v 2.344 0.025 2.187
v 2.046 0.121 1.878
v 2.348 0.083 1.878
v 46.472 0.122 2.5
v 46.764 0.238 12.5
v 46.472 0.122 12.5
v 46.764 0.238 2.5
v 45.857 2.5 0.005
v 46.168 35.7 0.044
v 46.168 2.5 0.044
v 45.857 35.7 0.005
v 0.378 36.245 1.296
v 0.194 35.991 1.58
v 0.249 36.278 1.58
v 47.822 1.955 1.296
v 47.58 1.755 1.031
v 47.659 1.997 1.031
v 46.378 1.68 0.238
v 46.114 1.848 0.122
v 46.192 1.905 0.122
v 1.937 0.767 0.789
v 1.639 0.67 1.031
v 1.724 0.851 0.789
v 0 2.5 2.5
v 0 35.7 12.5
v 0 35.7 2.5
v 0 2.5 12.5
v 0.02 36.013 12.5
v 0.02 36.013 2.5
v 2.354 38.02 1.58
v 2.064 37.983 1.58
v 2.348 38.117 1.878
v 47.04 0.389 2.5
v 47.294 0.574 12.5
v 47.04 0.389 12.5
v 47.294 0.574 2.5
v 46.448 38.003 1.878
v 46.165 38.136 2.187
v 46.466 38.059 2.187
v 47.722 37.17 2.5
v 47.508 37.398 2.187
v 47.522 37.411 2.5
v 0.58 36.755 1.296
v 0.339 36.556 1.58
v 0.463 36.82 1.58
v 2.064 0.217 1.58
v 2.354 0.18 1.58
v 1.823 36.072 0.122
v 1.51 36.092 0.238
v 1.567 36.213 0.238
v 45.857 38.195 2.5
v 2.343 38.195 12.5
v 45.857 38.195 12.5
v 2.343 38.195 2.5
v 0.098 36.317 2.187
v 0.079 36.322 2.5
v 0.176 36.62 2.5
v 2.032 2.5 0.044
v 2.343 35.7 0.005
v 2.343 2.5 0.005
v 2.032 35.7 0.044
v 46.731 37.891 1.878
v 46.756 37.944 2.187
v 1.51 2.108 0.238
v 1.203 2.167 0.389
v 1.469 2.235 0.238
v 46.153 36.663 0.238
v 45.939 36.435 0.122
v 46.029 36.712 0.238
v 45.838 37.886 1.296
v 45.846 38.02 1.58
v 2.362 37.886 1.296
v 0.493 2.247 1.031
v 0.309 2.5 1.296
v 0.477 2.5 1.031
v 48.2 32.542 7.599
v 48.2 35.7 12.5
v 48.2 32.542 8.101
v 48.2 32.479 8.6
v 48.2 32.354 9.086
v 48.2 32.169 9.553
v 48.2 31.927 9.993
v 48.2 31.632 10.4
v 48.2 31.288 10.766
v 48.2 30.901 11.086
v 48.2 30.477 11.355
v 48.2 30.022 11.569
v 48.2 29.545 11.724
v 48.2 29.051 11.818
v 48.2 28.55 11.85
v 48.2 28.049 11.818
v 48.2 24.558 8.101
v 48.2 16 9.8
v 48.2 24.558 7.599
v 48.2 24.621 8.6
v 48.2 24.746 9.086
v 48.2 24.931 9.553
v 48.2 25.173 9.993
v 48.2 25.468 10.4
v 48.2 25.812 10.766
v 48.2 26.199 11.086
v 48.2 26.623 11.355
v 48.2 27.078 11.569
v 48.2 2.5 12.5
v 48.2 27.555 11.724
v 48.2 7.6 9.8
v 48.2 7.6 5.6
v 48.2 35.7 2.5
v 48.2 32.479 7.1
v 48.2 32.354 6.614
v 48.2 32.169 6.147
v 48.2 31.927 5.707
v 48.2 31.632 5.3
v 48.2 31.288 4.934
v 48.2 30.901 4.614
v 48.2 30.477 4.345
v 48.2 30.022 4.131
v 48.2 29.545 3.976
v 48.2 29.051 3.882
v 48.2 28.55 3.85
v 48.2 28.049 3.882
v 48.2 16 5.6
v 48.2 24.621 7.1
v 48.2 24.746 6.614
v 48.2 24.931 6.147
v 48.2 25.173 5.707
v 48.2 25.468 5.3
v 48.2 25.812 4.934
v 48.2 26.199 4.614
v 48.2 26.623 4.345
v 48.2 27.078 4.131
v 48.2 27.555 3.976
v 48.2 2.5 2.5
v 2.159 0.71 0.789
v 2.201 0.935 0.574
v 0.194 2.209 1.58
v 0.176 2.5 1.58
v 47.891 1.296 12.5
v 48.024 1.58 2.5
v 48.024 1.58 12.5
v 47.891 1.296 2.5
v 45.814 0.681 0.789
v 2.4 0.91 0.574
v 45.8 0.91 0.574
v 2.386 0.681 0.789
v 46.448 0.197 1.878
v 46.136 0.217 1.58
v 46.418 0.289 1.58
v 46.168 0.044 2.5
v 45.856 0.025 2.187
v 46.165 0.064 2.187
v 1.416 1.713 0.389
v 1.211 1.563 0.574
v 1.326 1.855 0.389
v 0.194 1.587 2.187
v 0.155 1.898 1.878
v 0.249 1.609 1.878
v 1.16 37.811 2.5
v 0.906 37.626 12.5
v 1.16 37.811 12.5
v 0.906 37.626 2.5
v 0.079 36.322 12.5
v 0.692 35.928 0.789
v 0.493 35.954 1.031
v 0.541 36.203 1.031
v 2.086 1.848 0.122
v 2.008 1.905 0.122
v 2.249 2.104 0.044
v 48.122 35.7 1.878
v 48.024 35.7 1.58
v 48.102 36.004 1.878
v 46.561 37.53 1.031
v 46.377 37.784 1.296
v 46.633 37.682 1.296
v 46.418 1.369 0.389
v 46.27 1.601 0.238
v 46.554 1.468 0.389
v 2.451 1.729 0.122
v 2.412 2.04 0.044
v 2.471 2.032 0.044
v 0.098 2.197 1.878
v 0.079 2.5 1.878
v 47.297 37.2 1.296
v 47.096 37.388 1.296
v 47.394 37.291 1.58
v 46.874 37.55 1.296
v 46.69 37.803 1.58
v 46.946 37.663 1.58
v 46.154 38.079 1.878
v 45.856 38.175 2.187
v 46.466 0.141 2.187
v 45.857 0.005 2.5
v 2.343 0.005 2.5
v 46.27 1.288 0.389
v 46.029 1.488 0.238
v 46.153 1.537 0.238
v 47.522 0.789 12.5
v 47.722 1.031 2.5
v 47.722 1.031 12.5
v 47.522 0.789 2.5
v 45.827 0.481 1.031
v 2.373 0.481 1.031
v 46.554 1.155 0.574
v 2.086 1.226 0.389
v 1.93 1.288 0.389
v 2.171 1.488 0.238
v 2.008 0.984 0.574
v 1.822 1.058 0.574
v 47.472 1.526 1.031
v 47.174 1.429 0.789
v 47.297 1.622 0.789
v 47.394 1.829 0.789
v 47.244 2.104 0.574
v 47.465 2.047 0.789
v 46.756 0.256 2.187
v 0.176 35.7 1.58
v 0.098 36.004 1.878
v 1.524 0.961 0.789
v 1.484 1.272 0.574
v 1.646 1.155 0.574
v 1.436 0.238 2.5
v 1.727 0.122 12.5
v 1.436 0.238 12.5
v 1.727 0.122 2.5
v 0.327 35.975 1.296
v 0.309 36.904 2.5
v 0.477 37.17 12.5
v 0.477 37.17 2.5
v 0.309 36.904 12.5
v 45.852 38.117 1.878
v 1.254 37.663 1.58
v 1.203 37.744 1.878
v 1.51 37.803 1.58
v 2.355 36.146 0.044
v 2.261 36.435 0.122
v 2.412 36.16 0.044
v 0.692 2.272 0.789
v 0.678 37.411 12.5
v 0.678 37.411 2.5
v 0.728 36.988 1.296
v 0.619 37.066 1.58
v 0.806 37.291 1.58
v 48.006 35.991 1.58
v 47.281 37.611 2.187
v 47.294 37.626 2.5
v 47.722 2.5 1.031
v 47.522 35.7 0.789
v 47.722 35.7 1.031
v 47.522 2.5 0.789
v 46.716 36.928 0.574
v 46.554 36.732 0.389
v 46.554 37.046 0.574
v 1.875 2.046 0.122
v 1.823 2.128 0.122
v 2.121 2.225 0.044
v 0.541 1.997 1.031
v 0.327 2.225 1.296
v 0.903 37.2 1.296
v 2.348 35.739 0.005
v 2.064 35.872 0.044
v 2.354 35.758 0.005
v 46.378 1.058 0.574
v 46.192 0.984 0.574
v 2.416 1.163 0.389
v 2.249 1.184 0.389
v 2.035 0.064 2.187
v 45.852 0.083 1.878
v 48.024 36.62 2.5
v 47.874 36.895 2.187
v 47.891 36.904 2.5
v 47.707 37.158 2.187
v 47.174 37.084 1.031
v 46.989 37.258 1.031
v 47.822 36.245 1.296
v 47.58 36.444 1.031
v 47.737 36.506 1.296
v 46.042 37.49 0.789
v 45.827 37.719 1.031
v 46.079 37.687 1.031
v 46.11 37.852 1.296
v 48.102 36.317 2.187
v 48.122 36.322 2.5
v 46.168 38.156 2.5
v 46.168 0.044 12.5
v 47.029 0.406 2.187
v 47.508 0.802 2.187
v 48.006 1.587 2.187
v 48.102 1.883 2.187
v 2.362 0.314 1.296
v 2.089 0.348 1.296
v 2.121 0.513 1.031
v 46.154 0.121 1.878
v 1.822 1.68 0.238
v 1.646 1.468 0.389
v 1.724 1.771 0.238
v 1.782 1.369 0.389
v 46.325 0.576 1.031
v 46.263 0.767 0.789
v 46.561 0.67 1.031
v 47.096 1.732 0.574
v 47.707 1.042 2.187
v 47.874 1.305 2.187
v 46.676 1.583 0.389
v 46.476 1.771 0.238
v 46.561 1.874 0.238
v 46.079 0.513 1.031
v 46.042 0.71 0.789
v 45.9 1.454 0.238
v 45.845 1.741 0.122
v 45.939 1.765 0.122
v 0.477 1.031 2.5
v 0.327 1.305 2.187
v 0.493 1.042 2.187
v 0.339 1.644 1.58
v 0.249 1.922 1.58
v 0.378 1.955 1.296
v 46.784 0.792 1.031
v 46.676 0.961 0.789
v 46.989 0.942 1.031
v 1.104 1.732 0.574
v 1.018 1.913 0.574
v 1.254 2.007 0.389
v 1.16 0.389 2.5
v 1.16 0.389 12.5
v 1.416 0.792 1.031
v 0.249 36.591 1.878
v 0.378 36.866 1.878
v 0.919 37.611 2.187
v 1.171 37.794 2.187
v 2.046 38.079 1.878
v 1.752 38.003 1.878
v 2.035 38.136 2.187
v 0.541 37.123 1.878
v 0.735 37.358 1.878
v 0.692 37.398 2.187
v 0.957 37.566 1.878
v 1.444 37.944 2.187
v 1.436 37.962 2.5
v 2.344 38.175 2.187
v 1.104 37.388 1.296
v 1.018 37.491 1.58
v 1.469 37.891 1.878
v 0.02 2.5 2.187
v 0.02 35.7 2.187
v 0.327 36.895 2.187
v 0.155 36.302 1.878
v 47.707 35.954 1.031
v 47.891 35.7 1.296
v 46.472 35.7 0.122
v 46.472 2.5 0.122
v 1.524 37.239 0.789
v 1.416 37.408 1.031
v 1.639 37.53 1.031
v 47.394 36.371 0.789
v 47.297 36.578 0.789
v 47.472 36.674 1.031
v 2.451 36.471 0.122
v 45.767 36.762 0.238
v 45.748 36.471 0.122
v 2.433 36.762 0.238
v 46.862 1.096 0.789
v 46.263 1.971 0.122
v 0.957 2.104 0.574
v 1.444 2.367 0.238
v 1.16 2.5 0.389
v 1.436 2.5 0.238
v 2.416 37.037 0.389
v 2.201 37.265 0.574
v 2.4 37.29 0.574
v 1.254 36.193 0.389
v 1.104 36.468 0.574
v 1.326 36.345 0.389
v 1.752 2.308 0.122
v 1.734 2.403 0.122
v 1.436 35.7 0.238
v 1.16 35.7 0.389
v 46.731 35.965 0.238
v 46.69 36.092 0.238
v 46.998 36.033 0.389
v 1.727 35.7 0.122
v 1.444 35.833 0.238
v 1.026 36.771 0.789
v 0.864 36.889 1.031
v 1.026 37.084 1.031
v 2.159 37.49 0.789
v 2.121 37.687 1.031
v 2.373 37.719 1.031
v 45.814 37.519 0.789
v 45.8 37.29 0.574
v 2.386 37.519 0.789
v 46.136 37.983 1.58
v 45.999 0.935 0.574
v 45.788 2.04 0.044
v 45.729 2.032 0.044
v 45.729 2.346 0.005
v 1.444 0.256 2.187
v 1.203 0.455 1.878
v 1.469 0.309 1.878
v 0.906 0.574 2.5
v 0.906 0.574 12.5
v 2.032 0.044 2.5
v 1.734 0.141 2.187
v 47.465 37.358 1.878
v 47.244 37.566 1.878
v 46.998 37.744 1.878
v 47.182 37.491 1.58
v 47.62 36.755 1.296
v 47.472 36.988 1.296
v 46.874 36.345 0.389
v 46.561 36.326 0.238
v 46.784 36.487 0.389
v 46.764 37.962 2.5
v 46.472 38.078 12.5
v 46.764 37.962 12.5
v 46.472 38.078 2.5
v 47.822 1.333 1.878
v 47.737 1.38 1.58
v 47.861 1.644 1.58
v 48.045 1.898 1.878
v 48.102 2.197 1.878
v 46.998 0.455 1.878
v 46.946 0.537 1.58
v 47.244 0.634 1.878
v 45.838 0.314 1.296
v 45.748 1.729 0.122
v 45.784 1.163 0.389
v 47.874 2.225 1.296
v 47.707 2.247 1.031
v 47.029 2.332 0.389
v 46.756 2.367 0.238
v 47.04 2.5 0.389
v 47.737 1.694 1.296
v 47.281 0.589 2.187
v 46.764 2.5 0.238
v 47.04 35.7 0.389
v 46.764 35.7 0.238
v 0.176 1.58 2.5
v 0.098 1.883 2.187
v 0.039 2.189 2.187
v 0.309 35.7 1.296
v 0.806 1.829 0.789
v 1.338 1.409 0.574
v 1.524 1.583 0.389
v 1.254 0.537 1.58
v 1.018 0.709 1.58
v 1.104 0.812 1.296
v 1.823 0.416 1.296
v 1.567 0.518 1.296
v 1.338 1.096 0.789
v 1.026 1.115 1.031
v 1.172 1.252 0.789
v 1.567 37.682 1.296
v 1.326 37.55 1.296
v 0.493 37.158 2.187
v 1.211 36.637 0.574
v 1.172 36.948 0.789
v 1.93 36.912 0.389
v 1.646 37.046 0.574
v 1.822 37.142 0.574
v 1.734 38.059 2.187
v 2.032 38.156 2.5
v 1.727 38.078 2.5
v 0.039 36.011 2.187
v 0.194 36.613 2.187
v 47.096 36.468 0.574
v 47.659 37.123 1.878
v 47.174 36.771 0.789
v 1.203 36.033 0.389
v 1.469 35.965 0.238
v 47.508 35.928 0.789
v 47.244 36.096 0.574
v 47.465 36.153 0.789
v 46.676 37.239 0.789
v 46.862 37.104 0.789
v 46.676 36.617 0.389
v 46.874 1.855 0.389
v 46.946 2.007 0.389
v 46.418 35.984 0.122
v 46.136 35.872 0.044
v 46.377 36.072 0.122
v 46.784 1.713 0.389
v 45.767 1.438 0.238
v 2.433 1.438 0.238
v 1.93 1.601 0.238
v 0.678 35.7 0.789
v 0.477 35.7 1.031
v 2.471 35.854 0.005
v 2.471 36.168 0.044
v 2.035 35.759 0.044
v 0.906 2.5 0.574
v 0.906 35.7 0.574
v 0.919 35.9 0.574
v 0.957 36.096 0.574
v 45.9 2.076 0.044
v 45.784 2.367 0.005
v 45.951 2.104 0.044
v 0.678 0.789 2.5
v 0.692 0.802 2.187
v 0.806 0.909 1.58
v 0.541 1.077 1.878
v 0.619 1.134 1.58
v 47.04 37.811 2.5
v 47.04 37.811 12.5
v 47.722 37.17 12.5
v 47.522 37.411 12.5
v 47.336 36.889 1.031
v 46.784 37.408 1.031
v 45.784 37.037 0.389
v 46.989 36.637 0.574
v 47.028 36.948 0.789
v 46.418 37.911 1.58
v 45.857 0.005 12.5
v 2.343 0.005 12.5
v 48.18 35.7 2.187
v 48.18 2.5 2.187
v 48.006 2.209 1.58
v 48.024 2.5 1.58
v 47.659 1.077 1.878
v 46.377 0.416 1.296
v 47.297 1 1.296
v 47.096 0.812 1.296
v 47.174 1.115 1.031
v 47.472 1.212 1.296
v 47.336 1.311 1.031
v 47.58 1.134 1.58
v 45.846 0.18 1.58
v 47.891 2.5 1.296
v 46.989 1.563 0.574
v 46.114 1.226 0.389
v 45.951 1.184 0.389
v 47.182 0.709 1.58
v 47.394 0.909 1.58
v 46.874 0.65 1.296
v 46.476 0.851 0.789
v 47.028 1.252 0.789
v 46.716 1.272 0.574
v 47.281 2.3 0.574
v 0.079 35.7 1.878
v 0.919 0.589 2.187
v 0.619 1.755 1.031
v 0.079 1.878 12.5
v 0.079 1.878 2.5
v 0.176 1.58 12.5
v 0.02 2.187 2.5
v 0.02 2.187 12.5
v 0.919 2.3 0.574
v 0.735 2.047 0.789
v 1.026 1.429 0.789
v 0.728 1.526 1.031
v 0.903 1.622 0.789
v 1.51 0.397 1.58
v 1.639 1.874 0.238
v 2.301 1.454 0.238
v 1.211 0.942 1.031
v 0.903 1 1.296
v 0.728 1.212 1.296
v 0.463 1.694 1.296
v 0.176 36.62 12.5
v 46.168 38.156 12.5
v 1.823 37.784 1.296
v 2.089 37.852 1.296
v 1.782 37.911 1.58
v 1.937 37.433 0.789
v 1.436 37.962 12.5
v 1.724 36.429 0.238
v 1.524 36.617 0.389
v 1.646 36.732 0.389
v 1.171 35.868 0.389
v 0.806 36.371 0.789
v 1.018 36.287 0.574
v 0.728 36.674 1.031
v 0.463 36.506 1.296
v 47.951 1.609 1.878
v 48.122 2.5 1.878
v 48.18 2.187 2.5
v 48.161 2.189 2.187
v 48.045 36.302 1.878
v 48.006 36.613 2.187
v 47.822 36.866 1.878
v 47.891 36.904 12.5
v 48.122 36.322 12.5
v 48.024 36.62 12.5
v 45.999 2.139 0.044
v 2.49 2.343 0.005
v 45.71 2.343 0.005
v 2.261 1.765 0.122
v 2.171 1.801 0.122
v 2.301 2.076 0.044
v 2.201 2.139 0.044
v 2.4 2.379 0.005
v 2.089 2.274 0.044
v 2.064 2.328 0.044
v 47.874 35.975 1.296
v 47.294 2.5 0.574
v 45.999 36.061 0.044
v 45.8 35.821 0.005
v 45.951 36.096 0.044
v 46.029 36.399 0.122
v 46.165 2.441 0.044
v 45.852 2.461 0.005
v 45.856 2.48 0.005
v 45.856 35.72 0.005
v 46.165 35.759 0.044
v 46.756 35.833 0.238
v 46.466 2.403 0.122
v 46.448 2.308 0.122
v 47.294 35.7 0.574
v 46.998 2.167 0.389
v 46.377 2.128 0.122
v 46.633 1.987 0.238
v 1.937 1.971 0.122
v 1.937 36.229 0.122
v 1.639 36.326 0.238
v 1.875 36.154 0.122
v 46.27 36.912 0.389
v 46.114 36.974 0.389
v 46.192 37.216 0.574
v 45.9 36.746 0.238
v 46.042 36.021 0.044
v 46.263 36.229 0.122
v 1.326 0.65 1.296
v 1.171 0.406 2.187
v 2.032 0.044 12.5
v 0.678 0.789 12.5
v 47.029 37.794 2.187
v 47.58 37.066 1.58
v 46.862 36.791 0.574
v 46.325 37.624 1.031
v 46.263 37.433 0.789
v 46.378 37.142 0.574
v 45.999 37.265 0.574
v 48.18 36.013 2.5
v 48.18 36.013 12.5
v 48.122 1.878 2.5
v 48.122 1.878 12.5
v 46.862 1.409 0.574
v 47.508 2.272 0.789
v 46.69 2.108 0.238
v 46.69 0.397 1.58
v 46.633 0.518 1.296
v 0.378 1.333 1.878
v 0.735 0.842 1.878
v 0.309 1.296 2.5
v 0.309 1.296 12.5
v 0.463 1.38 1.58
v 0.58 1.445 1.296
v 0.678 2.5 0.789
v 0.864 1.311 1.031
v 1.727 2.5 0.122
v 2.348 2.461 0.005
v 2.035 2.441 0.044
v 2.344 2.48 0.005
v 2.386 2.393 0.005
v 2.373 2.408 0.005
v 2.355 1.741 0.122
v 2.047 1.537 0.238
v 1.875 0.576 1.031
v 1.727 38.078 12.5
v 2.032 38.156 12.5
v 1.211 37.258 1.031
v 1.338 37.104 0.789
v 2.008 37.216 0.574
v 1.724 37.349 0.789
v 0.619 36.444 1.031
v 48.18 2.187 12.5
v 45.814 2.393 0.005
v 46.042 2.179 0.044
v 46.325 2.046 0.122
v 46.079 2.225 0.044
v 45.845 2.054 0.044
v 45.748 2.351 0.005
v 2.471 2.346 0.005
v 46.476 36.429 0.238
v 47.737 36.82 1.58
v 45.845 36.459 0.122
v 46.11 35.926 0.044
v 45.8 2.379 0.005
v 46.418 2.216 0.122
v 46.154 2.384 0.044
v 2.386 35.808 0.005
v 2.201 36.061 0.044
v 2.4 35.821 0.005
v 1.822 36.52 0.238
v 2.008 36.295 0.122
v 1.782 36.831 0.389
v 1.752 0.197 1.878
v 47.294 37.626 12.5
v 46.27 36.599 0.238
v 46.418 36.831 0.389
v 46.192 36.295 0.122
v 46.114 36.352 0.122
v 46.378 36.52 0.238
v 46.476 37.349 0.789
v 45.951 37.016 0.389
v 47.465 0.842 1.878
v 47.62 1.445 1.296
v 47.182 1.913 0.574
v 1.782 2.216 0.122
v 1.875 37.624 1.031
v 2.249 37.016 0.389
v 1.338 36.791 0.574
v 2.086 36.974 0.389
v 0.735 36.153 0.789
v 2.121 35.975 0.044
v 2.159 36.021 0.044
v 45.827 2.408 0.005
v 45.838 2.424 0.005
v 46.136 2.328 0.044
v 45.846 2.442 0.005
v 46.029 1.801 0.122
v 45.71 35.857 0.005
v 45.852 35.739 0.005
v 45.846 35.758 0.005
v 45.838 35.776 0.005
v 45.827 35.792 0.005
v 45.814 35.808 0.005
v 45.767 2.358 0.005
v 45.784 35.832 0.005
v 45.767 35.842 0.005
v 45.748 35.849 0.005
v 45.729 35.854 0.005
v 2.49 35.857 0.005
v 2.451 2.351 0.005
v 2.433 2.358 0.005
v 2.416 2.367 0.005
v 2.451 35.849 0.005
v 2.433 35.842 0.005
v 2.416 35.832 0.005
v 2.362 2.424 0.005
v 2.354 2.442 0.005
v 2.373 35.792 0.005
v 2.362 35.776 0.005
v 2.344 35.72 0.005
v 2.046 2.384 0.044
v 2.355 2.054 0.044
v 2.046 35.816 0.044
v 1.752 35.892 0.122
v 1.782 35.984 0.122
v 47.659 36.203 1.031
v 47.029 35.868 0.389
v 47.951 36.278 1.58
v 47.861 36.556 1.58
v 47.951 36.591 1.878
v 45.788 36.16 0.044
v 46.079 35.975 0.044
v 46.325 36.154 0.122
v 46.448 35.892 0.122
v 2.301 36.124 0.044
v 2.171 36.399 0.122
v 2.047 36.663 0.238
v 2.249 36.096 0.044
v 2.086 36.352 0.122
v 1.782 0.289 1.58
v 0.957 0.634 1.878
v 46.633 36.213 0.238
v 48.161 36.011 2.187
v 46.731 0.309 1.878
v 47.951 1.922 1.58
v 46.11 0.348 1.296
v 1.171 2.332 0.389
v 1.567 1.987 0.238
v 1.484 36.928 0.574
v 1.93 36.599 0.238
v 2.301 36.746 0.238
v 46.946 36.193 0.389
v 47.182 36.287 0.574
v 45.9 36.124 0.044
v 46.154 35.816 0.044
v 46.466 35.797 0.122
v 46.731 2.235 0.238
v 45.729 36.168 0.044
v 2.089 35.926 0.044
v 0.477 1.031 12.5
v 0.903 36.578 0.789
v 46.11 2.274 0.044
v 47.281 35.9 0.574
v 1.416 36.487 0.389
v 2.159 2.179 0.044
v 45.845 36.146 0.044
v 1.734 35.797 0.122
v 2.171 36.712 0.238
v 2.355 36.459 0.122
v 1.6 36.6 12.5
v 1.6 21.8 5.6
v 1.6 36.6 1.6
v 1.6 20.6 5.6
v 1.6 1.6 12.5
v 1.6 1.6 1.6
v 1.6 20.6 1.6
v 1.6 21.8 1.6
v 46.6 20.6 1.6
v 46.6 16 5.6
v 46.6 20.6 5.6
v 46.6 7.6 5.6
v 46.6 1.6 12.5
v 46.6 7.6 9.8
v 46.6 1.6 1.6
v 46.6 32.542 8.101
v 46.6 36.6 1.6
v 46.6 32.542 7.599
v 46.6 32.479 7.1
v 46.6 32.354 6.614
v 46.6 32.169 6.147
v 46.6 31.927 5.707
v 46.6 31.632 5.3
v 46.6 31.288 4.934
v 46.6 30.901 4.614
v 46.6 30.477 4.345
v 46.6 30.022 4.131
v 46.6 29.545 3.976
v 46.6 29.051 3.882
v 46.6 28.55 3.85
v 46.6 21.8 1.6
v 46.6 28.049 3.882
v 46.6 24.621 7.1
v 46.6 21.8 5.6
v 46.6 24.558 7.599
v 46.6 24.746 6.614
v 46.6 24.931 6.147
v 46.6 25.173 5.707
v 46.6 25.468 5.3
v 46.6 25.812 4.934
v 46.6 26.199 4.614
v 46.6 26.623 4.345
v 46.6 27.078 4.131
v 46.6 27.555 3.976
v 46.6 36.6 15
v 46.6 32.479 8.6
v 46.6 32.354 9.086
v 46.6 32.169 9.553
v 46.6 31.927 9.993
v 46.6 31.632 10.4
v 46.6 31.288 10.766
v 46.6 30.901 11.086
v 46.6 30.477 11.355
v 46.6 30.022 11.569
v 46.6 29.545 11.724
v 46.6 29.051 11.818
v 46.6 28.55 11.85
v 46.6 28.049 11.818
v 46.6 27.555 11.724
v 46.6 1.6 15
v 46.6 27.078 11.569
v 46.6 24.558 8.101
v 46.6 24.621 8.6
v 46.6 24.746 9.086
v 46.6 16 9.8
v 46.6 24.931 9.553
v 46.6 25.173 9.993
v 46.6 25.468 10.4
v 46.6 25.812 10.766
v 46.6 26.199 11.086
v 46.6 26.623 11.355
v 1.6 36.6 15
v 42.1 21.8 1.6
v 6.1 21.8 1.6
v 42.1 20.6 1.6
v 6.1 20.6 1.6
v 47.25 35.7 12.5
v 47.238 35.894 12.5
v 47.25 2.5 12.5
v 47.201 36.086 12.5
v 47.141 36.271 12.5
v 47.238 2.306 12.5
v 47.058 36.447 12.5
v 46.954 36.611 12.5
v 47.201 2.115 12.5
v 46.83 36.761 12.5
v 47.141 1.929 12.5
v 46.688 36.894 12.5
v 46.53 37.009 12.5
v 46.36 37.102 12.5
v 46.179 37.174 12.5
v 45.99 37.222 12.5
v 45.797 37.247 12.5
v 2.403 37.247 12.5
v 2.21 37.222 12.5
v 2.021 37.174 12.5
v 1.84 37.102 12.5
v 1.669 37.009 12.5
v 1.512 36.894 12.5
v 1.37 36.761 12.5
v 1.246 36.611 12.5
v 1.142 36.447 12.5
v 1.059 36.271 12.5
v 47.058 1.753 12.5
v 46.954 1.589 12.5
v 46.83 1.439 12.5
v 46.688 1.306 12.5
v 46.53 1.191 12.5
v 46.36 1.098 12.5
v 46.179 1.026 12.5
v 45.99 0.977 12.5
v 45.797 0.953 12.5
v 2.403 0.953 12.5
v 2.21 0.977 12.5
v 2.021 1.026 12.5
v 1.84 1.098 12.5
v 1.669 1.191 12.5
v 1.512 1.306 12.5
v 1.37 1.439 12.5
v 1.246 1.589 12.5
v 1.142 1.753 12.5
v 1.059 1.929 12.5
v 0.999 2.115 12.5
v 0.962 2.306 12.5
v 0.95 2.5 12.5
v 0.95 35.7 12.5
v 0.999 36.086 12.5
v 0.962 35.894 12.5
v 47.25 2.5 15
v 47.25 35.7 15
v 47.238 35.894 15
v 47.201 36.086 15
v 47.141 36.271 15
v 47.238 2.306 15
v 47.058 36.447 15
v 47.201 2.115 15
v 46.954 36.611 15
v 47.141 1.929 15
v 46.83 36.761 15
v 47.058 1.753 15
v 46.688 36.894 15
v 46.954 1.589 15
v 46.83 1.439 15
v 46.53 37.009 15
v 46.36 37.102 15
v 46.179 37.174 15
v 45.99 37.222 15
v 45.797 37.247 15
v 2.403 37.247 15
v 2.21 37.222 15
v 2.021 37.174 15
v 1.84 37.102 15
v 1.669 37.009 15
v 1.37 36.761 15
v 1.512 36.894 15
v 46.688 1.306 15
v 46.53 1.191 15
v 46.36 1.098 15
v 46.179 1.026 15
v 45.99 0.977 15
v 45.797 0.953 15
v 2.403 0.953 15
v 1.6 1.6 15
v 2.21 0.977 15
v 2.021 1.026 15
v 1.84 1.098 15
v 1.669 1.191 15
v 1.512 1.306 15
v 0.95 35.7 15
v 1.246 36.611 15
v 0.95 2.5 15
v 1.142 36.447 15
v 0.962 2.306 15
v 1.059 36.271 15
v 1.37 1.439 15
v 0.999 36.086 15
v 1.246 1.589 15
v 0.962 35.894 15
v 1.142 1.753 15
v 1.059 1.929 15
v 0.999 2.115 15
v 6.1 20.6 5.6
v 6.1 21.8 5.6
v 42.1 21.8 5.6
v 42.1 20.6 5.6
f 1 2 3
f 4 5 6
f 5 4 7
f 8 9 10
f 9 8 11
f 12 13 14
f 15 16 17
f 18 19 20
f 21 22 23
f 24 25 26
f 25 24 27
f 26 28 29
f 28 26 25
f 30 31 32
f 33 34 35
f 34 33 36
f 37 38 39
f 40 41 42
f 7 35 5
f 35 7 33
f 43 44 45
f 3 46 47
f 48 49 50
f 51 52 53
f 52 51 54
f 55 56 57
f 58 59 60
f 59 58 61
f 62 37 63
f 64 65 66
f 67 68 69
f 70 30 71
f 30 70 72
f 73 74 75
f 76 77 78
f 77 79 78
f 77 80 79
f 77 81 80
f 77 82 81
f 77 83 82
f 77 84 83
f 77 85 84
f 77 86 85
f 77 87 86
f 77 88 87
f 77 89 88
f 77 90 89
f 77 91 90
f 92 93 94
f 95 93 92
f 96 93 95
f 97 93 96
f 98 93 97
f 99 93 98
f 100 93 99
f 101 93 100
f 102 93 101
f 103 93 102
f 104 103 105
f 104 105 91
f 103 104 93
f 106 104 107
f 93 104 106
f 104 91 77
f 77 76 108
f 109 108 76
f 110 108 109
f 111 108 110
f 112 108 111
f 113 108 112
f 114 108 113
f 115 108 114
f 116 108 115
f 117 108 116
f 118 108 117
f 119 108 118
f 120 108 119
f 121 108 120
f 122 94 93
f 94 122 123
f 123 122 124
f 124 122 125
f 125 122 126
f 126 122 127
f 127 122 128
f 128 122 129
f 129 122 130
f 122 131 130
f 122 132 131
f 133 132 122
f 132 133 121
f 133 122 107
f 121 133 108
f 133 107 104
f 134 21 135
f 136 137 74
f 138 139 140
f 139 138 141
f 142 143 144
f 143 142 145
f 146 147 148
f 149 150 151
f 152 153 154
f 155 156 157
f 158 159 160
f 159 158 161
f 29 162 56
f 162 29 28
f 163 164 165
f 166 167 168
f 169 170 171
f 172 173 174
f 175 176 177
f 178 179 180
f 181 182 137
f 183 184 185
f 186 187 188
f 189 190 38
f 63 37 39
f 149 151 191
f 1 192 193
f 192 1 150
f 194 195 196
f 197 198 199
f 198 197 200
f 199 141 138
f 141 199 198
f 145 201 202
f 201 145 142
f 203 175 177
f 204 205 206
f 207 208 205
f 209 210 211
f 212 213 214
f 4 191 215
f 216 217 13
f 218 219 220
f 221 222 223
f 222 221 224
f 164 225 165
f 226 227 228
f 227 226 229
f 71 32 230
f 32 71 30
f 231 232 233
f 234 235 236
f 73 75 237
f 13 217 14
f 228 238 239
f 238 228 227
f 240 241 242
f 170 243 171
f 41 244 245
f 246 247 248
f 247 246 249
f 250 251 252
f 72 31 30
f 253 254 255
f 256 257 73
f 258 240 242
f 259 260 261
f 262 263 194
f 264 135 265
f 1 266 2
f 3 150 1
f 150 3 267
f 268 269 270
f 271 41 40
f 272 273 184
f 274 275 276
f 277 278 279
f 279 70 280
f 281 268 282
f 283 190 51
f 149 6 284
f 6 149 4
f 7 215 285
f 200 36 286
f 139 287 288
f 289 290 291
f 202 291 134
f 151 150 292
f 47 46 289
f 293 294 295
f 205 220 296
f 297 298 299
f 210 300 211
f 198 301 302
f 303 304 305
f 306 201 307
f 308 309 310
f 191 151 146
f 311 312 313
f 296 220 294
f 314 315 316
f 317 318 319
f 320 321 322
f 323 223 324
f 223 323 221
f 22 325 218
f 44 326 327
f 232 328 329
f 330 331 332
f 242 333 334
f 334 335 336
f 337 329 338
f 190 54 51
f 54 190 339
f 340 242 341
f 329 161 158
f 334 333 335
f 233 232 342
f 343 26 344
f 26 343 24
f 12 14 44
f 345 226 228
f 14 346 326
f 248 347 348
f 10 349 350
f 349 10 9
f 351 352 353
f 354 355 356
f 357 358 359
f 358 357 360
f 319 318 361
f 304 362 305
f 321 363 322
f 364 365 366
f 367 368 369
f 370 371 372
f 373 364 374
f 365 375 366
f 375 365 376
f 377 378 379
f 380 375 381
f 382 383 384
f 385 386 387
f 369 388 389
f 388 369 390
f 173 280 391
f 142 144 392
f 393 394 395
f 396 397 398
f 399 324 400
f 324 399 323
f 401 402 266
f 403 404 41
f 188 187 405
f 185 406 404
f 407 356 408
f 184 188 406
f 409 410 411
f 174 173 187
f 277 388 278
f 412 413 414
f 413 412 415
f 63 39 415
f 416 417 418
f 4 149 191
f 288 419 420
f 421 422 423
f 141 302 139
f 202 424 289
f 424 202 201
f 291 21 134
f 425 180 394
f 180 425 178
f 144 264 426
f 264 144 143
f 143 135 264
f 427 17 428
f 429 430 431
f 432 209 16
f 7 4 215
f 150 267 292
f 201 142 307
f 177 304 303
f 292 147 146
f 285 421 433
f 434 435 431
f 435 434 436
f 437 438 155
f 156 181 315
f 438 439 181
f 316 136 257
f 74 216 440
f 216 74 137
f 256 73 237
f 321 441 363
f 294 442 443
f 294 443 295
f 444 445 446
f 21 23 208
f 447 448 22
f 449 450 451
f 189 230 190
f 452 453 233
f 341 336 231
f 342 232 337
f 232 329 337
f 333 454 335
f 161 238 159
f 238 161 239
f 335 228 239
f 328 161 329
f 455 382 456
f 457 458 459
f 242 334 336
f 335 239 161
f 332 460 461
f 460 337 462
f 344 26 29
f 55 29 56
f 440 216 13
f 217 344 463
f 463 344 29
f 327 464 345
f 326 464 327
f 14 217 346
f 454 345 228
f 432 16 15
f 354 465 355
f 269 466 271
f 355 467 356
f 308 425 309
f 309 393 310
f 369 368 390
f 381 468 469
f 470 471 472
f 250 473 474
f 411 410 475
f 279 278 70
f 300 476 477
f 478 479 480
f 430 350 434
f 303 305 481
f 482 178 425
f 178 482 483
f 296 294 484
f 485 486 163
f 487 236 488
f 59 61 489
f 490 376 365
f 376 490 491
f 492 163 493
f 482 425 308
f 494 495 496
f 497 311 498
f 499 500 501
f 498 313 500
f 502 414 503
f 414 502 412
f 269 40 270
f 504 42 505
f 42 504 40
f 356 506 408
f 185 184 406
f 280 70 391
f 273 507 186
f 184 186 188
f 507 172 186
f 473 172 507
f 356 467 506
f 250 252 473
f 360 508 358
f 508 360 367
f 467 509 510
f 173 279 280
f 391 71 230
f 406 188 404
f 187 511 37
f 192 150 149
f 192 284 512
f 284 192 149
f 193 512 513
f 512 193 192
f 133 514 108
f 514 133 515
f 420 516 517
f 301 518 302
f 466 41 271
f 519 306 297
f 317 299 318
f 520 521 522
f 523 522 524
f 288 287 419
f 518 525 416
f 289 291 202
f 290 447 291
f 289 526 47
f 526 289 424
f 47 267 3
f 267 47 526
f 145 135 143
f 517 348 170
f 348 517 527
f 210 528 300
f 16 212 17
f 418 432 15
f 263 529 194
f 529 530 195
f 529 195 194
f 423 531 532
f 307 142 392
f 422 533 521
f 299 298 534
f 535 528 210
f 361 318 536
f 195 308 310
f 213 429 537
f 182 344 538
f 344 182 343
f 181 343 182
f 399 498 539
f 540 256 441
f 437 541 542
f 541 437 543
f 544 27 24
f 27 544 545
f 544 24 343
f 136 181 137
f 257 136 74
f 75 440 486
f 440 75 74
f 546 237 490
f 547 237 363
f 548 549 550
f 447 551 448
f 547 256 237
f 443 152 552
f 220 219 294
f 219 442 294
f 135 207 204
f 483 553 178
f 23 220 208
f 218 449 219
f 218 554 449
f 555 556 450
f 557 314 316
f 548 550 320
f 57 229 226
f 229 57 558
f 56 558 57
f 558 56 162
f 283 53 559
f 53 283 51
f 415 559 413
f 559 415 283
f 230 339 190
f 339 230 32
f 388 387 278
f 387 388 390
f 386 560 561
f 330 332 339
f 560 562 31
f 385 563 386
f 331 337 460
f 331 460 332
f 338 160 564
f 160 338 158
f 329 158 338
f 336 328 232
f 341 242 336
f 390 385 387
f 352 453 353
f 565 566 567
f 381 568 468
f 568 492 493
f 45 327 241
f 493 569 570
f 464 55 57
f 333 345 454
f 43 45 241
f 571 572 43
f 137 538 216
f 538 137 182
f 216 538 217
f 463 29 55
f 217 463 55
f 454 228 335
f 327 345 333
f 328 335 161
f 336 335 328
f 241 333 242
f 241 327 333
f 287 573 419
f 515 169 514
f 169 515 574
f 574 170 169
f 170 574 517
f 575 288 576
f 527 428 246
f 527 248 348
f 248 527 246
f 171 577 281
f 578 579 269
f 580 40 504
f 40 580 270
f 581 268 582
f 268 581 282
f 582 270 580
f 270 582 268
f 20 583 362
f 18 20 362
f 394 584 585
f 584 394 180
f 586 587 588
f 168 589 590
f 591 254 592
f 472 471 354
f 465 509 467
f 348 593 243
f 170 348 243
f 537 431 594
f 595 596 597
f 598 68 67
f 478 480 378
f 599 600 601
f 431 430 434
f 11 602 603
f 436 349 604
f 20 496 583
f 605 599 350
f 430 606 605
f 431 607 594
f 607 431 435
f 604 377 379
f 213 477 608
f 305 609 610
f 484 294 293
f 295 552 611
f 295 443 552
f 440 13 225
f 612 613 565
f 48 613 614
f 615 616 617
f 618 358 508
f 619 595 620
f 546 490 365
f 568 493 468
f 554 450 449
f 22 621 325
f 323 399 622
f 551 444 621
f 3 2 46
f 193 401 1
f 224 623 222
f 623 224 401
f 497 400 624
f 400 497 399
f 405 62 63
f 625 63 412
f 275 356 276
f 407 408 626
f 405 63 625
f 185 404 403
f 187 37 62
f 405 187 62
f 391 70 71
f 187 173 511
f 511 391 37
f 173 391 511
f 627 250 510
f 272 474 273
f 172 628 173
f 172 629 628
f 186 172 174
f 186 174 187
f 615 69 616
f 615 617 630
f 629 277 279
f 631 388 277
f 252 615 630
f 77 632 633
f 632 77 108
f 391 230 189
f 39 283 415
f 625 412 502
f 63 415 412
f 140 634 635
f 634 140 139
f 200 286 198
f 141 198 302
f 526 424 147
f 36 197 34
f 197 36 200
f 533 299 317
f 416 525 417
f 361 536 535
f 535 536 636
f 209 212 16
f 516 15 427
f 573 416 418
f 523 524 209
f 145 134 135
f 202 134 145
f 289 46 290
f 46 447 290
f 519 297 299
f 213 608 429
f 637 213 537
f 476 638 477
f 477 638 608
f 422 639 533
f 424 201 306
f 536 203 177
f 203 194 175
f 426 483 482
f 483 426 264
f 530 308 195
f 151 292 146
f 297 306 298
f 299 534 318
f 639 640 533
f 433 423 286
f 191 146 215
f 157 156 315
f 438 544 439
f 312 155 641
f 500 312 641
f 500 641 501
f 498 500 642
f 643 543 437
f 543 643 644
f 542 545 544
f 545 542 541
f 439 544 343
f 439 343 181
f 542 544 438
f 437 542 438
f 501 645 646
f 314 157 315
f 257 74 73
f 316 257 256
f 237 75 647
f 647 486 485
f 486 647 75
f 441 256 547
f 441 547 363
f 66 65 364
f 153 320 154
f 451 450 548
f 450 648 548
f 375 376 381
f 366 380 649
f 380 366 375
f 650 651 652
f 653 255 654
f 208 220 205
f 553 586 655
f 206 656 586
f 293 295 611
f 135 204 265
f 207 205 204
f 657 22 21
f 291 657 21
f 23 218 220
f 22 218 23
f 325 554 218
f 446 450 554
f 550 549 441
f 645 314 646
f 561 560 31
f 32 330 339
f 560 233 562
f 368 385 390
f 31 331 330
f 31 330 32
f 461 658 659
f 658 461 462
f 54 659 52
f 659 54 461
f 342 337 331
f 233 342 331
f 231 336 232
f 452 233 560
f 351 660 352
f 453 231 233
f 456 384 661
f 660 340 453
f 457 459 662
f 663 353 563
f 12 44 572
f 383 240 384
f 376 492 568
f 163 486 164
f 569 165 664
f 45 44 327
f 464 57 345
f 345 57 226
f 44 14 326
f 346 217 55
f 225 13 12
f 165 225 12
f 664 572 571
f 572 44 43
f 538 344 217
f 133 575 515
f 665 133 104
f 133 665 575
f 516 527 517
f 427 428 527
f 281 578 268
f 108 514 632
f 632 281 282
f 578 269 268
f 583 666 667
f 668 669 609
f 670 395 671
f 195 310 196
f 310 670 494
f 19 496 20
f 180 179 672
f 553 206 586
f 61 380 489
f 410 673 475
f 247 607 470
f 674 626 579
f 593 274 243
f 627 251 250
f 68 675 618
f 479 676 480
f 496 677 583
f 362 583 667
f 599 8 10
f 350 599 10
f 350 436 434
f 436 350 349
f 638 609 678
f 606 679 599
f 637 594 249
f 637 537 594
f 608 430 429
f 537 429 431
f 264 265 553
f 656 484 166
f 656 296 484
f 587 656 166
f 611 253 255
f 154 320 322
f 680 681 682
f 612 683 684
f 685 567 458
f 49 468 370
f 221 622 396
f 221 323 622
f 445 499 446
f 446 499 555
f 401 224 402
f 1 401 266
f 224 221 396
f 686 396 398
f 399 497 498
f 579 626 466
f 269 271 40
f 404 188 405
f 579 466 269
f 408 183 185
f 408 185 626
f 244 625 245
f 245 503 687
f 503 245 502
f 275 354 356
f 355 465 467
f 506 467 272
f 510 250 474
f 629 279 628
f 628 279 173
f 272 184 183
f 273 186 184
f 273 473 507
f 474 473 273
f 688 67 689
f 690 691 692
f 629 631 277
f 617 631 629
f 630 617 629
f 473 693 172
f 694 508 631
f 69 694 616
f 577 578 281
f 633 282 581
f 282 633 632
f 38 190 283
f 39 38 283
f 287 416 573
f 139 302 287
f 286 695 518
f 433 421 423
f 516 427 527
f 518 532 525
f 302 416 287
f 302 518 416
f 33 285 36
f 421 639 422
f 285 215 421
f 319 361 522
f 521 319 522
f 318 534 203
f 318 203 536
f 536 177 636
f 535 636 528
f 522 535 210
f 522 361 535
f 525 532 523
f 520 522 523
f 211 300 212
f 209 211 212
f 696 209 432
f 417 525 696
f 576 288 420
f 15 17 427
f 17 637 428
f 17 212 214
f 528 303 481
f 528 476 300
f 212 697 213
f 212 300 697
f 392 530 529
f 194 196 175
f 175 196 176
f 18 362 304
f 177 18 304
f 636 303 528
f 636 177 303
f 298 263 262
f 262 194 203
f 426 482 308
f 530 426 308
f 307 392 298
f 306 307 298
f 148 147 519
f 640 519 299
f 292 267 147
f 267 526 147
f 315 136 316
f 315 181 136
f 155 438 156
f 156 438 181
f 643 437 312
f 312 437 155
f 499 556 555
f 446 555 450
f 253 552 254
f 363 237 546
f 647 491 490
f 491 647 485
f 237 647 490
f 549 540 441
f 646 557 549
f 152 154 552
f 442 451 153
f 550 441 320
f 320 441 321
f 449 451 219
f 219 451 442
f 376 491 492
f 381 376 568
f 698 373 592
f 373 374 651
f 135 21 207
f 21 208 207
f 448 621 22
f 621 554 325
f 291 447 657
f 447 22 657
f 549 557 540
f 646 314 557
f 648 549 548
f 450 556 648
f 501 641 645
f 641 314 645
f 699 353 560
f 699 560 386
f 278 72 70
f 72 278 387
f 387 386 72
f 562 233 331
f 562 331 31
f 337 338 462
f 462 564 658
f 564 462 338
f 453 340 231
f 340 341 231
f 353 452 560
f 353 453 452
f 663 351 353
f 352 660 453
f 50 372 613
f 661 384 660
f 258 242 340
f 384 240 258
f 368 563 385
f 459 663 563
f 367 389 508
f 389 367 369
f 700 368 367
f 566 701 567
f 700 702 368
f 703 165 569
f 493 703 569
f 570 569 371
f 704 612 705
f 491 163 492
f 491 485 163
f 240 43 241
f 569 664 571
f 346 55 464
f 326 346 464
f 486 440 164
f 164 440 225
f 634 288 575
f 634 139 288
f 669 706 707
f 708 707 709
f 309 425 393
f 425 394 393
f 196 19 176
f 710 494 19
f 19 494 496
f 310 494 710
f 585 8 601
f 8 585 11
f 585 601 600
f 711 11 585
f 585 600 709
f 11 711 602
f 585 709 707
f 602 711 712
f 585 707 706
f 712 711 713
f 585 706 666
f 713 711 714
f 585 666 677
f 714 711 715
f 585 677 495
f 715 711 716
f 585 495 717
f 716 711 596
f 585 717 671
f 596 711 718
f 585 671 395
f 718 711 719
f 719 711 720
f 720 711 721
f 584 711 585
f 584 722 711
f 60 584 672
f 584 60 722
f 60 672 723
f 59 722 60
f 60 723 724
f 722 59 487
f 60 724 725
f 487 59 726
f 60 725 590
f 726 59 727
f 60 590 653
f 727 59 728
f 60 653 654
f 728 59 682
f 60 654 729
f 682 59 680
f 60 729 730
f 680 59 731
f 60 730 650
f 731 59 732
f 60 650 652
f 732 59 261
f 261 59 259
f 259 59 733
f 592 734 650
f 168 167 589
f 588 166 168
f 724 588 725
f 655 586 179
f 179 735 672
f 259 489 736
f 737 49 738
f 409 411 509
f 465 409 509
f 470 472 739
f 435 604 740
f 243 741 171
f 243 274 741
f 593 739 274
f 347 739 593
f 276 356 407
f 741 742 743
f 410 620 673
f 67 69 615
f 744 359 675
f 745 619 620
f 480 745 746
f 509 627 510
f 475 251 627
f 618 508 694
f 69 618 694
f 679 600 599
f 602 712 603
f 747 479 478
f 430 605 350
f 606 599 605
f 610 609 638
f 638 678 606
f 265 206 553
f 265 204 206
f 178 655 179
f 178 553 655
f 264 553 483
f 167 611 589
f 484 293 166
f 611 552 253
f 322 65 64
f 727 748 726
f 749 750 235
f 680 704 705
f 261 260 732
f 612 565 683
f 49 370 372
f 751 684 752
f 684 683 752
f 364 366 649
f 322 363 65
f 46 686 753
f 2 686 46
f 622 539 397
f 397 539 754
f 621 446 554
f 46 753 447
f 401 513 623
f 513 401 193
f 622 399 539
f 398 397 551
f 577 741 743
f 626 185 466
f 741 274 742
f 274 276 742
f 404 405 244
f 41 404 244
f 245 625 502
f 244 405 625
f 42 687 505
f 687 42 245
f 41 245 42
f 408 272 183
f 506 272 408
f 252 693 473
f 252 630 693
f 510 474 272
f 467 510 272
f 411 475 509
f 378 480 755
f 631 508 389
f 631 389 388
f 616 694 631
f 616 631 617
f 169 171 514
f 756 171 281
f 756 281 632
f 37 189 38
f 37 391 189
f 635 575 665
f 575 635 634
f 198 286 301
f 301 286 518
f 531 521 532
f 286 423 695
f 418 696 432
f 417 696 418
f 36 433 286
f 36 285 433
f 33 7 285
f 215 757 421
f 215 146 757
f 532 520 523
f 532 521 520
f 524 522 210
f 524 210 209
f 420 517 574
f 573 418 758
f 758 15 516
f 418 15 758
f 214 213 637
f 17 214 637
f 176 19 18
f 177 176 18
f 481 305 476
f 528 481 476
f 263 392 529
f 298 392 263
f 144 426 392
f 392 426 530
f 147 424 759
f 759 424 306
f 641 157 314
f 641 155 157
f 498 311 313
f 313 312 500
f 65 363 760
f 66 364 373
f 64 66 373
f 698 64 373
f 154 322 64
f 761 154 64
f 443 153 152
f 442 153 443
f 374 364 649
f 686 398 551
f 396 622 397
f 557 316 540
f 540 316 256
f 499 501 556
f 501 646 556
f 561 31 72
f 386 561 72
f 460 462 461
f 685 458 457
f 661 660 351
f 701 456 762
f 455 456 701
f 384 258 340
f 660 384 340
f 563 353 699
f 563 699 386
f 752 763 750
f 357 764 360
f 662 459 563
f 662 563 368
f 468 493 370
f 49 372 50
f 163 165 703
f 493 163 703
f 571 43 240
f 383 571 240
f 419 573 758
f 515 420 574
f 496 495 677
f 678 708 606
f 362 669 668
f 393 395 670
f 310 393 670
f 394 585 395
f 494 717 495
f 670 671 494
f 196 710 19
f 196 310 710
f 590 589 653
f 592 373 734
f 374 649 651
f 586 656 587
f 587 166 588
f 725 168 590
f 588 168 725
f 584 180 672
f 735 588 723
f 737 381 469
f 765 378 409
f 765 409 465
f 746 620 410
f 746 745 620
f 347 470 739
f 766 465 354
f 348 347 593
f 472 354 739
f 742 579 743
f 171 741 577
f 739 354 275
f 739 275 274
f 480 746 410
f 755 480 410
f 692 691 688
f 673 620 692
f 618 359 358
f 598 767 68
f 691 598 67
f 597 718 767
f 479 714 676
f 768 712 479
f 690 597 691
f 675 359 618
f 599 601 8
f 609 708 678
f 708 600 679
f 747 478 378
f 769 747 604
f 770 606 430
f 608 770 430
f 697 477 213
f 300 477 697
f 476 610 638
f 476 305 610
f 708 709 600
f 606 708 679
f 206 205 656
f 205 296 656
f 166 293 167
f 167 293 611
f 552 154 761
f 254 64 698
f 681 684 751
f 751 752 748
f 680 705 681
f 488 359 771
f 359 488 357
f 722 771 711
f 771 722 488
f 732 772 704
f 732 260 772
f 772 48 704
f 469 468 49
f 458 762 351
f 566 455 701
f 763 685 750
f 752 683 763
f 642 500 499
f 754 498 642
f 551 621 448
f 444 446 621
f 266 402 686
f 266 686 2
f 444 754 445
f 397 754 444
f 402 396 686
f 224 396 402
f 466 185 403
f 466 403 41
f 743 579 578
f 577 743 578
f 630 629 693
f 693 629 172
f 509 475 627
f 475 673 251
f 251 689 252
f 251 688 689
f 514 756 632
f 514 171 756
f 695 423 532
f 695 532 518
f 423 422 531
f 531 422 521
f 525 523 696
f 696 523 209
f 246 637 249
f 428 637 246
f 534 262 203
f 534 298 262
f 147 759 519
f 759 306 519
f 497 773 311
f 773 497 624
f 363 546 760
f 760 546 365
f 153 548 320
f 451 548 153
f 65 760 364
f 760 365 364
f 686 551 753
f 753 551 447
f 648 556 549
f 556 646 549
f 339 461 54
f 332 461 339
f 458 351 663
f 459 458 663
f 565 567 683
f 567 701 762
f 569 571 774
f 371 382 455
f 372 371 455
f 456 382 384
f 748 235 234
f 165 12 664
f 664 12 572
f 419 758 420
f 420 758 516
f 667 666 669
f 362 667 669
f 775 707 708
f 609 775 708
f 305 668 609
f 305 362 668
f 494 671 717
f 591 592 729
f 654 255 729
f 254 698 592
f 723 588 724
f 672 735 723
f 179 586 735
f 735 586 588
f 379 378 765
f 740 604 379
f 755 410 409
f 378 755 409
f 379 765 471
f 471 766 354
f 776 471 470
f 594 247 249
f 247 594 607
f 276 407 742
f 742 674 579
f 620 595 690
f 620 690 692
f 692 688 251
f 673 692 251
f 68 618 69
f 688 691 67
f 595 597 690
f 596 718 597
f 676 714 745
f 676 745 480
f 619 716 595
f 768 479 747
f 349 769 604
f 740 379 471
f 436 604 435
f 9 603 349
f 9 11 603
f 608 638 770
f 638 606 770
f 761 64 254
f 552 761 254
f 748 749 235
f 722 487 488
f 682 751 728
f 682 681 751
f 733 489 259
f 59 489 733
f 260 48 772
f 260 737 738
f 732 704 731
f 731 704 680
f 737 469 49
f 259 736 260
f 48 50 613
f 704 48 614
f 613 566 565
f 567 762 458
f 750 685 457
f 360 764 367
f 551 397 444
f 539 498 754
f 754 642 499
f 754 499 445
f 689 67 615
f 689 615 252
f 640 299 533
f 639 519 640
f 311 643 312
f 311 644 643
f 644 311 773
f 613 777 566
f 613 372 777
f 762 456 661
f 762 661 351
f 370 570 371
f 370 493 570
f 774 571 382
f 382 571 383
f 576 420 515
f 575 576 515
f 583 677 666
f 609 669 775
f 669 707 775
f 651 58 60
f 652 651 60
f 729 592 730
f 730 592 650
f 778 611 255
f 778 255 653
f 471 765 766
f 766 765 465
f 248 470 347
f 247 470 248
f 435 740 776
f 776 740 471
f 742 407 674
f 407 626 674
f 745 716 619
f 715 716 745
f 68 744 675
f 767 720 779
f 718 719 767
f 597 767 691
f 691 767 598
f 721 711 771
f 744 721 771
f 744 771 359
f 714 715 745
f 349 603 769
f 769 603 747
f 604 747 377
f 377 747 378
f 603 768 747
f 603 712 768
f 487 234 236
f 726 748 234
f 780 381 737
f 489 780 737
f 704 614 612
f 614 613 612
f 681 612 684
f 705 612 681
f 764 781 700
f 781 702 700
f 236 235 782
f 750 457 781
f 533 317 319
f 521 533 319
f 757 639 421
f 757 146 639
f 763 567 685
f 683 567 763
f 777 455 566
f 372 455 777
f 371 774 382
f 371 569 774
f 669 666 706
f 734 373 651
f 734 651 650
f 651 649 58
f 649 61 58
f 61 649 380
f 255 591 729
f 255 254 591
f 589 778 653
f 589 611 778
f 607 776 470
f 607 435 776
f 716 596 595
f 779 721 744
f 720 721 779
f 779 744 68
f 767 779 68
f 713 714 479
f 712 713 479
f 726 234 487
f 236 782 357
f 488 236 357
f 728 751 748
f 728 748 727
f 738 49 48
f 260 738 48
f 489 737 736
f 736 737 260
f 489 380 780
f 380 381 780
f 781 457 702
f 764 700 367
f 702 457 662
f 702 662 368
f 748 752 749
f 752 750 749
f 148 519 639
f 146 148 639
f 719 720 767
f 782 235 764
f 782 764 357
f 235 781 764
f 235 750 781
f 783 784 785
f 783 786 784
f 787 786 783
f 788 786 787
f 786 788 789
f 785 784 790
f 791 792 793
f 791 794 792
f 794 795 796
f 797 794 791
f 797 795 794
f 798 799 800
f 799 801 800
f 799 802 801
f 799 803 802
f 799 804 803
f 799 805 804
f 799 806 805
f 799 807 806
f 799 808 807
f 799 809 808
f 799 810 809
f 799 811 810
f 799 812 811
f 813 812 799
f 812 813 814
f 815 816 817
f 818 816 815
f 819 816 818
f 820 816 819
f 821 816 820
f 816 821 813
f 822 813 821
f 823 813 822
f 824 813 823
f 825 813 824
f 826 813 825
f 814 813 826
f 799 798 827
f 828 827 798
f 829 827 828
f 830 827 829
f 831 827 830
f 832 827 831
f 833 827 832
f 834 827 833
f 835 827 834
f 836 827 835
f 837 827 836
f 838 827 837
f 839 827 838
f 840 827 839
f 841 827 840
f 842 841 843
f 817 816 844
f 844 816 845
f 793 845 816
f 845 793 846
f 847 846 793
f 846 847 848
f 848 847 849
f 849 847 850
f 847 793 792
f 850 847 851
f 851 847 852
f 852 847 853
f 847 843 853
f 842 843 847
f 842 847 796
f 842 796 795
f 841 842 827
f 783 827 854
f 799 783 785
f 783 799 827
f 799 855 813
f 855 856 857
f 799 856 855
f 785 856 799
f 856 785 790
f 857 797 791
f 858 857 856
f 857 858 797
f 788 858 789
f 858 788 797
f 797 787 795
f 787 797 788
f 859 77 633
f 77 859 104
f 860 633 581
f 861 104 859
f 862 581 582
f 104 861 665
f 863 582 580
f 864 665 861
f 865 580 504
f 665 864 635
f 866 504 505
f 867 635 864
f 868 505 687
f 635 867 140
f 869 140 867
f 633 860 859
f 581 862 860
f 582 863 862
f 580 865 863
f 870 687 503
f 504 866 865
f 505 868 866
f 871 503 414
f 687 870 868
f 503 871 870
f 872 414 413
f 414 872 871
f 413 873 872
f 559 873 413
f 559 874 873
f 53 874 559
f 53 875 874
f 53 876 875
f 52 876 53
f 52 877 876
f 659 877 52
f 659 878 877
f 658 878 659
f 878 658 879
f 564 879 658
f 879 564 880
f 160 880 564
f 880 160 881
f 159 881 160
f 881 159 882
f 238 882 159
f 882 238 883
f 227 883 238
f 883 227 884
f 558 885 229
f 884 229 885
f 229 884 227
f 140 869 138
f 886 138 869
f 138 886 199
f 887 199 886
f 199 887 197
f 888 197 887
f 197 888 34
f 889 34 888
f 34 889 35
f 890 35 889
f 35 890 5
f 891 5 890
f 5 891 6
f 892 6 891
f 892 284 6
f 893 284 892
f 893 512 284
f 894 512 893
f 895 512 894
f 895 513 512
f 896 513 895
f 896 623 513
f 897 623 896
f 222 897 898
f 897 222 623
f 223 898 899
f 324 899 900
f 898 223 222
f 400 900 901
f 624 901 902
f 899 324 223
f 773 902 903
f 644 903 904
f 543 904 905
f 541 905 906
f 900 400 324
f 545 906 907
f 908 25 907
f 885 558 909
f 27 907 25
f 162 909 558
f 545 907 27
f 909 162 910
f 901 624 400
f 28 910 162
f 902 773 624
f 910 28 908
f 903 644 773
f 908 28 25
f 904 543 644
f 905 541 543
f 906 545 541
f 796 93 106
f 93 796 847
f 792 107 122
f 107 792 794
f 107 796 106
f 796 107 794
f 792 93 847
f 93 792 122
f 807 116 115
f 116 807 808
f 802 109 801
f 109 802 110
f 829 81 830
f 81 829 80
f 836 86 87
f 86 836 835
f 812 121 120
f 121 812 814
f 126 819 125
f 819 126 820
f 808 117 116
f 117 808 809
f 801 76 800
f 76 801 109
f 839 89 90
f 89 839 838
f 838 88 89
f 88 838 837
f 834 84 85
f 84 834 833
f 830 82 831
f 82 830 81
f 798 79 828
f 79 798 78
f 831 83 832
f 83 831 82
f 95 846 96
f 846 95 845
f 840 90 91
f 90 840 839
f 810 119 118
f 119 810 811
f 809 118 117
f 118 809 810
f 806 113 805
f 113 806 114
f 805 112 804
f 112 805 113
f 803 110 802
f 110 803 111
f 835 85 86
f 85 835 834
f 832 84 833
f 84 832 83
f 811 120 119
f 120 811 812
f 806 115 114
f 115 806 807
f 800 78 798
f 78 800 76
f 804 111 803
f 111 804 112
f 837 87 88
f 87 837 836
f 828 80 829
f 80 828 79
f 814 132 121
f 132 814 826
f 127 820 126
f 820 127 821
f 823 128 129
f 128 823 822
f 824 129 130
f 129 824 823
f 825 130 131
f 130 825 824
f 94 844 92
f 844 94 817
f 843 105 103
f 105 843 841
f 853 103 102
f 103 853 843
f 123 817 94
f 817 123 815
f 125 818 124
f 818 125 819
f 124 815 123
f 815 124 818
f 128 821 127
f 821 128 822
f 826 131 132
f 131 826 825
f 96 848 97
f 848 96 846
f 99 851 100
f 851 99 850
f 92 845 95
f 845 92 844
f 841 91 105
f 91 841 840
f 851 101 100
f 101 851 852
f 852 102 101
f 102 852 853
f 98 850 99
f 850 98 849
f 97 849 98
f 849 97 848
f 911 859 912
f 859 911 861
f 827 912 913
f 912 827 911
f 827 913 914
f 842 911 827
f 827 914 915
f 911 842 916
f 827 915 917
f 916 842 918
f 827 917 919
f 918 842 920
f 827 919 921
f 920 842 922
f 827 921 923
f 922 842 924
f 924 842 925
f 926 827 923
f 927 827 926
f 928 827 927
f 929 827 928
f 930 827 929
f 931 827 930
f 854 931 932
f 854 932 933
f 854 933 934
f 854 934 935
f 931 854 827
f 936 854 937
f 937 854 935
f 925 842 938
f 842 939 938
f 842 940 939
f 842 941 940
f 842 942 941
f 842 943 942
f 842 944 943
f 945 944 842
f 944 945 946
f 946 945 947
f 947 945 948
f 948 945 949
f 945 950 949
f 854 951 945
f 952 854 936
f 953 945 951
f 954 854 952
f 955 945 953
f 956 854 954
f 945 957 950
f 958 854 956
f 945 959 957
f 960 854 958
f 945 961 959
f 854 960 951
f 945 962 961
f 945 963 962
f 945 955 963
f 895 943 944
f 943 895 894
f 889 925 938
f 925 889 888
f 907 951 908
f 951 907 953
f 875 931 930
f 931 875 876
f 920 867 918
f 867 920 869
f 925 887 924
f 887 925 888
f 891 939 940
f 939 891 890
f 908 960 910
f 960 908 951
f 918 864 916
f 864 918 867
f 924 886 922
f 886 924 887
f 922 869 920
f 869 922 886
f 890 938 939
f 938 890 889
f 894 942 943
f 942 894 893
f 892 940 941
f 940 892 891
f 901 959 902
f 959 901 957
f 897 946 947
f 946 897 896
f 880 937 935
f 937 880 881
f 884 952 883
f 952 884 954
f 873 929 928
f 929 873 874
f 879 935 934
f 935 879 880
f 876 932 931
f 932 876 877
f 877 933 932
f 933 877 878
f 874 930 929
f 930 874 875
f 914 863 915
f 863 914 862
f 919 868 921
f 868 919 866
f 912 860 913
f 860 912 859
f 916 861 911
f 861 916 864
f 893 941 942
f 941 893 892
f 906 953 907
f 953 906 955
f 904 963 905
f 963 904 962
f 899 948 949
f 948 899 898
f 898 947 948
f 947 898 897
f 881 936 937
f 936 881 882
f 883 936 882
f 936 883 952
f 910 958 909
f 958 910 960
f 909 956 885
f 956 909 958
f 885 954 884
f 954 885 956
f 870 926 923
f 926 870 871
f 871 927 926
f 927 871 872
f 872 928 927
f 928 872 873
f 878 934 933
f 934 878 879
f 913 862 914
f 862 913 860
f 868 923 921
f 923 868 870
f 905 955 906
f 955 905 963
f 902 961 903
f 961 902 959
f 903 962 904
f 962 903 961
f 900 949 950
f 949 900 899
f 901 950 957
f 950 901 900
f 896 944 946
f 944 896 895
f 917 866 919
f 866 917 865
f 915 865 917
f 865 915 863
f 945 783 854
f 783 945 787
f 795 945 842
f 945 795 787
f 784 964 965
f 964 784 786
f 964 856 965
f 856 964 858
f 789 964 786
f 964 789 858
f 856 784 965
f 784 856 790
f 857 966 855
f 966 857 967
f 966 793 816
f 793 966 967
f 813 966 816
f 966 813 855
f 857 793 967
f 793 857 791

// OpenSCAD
//
//  LedMatrix
//  part of Let's make series
//
//  The Cave, 2017
//  https://thecave.cz
//
//  Licensed under MIT License (see LICENSE file for details)
//

$innerX = 45;
$innerY = 35;
$outerZ = 15;
$wall = 1.6;
$outerDia = 5;
$dentZ = 2.5;

$usbWidth = 8.4;
$usbHeight = 4.2;
$usbY = 4;
$usbX = 6;
$arduinoWidth = 19;
$buttonDia = 8;


difference() {
    translate([$outerDia/2,$outerDia/2,$outerDia/2]) minkowski() {
        sphere(d=$outerDia,$fn=50);
        cube([$innerX+$wall*2-$outerDia,$innerY+$wall*2-$outerDia,$outerZ+$outerDia*2]);
    }
    translate([$wall,$wall,$wall]) cube([$innerX,$innerY,$outerZ*2]);
    translate([-1,-1,$outerZ-$dentZ]) cube([$innerX*2,$innerY*2,$outerZ*2]);
    
    translate([$innerX+$wall-1,$wall+$usbX,$wall+$usbY]) cube([$wall+2,$usbWidth, $usbHeight]);
    translate([$wall+$innerX-1,$wall+$innerY*0.77,$wall+($outerZ-$dentZ)/2]) rotate([0,90,0]) cylinder(d=$buttonDia,h=$wall+2,$fn=50);
}

translate([$wall,$wall+$arduinoWidth,$wall]) cube([$innerX*0.1, 1.2, 4]);
translate([$wall+$innerX*0.9,$wall+$arduinoWidth,$wall]) cube([$innerX*0.1, 1.2, 4]);



translate([$outerDia/2,$outerDia/2,$outerZ-$dentZ]) difference() {
    minkowski() {
        cube([$innerX+$wall-($outerDia-$wall),$innerY+$wall-($outerDia-$wall),$dentZ/2]);
        cylinder(d=$outerDia-$wall-0.3,h=$dentZ/2,$fn=50);
    }
    translate([-$outerDia/2+$wall,-$outerDia/2+$wall,-1]) cube([$innerX,$innerY,$dentZ+2]);
}
